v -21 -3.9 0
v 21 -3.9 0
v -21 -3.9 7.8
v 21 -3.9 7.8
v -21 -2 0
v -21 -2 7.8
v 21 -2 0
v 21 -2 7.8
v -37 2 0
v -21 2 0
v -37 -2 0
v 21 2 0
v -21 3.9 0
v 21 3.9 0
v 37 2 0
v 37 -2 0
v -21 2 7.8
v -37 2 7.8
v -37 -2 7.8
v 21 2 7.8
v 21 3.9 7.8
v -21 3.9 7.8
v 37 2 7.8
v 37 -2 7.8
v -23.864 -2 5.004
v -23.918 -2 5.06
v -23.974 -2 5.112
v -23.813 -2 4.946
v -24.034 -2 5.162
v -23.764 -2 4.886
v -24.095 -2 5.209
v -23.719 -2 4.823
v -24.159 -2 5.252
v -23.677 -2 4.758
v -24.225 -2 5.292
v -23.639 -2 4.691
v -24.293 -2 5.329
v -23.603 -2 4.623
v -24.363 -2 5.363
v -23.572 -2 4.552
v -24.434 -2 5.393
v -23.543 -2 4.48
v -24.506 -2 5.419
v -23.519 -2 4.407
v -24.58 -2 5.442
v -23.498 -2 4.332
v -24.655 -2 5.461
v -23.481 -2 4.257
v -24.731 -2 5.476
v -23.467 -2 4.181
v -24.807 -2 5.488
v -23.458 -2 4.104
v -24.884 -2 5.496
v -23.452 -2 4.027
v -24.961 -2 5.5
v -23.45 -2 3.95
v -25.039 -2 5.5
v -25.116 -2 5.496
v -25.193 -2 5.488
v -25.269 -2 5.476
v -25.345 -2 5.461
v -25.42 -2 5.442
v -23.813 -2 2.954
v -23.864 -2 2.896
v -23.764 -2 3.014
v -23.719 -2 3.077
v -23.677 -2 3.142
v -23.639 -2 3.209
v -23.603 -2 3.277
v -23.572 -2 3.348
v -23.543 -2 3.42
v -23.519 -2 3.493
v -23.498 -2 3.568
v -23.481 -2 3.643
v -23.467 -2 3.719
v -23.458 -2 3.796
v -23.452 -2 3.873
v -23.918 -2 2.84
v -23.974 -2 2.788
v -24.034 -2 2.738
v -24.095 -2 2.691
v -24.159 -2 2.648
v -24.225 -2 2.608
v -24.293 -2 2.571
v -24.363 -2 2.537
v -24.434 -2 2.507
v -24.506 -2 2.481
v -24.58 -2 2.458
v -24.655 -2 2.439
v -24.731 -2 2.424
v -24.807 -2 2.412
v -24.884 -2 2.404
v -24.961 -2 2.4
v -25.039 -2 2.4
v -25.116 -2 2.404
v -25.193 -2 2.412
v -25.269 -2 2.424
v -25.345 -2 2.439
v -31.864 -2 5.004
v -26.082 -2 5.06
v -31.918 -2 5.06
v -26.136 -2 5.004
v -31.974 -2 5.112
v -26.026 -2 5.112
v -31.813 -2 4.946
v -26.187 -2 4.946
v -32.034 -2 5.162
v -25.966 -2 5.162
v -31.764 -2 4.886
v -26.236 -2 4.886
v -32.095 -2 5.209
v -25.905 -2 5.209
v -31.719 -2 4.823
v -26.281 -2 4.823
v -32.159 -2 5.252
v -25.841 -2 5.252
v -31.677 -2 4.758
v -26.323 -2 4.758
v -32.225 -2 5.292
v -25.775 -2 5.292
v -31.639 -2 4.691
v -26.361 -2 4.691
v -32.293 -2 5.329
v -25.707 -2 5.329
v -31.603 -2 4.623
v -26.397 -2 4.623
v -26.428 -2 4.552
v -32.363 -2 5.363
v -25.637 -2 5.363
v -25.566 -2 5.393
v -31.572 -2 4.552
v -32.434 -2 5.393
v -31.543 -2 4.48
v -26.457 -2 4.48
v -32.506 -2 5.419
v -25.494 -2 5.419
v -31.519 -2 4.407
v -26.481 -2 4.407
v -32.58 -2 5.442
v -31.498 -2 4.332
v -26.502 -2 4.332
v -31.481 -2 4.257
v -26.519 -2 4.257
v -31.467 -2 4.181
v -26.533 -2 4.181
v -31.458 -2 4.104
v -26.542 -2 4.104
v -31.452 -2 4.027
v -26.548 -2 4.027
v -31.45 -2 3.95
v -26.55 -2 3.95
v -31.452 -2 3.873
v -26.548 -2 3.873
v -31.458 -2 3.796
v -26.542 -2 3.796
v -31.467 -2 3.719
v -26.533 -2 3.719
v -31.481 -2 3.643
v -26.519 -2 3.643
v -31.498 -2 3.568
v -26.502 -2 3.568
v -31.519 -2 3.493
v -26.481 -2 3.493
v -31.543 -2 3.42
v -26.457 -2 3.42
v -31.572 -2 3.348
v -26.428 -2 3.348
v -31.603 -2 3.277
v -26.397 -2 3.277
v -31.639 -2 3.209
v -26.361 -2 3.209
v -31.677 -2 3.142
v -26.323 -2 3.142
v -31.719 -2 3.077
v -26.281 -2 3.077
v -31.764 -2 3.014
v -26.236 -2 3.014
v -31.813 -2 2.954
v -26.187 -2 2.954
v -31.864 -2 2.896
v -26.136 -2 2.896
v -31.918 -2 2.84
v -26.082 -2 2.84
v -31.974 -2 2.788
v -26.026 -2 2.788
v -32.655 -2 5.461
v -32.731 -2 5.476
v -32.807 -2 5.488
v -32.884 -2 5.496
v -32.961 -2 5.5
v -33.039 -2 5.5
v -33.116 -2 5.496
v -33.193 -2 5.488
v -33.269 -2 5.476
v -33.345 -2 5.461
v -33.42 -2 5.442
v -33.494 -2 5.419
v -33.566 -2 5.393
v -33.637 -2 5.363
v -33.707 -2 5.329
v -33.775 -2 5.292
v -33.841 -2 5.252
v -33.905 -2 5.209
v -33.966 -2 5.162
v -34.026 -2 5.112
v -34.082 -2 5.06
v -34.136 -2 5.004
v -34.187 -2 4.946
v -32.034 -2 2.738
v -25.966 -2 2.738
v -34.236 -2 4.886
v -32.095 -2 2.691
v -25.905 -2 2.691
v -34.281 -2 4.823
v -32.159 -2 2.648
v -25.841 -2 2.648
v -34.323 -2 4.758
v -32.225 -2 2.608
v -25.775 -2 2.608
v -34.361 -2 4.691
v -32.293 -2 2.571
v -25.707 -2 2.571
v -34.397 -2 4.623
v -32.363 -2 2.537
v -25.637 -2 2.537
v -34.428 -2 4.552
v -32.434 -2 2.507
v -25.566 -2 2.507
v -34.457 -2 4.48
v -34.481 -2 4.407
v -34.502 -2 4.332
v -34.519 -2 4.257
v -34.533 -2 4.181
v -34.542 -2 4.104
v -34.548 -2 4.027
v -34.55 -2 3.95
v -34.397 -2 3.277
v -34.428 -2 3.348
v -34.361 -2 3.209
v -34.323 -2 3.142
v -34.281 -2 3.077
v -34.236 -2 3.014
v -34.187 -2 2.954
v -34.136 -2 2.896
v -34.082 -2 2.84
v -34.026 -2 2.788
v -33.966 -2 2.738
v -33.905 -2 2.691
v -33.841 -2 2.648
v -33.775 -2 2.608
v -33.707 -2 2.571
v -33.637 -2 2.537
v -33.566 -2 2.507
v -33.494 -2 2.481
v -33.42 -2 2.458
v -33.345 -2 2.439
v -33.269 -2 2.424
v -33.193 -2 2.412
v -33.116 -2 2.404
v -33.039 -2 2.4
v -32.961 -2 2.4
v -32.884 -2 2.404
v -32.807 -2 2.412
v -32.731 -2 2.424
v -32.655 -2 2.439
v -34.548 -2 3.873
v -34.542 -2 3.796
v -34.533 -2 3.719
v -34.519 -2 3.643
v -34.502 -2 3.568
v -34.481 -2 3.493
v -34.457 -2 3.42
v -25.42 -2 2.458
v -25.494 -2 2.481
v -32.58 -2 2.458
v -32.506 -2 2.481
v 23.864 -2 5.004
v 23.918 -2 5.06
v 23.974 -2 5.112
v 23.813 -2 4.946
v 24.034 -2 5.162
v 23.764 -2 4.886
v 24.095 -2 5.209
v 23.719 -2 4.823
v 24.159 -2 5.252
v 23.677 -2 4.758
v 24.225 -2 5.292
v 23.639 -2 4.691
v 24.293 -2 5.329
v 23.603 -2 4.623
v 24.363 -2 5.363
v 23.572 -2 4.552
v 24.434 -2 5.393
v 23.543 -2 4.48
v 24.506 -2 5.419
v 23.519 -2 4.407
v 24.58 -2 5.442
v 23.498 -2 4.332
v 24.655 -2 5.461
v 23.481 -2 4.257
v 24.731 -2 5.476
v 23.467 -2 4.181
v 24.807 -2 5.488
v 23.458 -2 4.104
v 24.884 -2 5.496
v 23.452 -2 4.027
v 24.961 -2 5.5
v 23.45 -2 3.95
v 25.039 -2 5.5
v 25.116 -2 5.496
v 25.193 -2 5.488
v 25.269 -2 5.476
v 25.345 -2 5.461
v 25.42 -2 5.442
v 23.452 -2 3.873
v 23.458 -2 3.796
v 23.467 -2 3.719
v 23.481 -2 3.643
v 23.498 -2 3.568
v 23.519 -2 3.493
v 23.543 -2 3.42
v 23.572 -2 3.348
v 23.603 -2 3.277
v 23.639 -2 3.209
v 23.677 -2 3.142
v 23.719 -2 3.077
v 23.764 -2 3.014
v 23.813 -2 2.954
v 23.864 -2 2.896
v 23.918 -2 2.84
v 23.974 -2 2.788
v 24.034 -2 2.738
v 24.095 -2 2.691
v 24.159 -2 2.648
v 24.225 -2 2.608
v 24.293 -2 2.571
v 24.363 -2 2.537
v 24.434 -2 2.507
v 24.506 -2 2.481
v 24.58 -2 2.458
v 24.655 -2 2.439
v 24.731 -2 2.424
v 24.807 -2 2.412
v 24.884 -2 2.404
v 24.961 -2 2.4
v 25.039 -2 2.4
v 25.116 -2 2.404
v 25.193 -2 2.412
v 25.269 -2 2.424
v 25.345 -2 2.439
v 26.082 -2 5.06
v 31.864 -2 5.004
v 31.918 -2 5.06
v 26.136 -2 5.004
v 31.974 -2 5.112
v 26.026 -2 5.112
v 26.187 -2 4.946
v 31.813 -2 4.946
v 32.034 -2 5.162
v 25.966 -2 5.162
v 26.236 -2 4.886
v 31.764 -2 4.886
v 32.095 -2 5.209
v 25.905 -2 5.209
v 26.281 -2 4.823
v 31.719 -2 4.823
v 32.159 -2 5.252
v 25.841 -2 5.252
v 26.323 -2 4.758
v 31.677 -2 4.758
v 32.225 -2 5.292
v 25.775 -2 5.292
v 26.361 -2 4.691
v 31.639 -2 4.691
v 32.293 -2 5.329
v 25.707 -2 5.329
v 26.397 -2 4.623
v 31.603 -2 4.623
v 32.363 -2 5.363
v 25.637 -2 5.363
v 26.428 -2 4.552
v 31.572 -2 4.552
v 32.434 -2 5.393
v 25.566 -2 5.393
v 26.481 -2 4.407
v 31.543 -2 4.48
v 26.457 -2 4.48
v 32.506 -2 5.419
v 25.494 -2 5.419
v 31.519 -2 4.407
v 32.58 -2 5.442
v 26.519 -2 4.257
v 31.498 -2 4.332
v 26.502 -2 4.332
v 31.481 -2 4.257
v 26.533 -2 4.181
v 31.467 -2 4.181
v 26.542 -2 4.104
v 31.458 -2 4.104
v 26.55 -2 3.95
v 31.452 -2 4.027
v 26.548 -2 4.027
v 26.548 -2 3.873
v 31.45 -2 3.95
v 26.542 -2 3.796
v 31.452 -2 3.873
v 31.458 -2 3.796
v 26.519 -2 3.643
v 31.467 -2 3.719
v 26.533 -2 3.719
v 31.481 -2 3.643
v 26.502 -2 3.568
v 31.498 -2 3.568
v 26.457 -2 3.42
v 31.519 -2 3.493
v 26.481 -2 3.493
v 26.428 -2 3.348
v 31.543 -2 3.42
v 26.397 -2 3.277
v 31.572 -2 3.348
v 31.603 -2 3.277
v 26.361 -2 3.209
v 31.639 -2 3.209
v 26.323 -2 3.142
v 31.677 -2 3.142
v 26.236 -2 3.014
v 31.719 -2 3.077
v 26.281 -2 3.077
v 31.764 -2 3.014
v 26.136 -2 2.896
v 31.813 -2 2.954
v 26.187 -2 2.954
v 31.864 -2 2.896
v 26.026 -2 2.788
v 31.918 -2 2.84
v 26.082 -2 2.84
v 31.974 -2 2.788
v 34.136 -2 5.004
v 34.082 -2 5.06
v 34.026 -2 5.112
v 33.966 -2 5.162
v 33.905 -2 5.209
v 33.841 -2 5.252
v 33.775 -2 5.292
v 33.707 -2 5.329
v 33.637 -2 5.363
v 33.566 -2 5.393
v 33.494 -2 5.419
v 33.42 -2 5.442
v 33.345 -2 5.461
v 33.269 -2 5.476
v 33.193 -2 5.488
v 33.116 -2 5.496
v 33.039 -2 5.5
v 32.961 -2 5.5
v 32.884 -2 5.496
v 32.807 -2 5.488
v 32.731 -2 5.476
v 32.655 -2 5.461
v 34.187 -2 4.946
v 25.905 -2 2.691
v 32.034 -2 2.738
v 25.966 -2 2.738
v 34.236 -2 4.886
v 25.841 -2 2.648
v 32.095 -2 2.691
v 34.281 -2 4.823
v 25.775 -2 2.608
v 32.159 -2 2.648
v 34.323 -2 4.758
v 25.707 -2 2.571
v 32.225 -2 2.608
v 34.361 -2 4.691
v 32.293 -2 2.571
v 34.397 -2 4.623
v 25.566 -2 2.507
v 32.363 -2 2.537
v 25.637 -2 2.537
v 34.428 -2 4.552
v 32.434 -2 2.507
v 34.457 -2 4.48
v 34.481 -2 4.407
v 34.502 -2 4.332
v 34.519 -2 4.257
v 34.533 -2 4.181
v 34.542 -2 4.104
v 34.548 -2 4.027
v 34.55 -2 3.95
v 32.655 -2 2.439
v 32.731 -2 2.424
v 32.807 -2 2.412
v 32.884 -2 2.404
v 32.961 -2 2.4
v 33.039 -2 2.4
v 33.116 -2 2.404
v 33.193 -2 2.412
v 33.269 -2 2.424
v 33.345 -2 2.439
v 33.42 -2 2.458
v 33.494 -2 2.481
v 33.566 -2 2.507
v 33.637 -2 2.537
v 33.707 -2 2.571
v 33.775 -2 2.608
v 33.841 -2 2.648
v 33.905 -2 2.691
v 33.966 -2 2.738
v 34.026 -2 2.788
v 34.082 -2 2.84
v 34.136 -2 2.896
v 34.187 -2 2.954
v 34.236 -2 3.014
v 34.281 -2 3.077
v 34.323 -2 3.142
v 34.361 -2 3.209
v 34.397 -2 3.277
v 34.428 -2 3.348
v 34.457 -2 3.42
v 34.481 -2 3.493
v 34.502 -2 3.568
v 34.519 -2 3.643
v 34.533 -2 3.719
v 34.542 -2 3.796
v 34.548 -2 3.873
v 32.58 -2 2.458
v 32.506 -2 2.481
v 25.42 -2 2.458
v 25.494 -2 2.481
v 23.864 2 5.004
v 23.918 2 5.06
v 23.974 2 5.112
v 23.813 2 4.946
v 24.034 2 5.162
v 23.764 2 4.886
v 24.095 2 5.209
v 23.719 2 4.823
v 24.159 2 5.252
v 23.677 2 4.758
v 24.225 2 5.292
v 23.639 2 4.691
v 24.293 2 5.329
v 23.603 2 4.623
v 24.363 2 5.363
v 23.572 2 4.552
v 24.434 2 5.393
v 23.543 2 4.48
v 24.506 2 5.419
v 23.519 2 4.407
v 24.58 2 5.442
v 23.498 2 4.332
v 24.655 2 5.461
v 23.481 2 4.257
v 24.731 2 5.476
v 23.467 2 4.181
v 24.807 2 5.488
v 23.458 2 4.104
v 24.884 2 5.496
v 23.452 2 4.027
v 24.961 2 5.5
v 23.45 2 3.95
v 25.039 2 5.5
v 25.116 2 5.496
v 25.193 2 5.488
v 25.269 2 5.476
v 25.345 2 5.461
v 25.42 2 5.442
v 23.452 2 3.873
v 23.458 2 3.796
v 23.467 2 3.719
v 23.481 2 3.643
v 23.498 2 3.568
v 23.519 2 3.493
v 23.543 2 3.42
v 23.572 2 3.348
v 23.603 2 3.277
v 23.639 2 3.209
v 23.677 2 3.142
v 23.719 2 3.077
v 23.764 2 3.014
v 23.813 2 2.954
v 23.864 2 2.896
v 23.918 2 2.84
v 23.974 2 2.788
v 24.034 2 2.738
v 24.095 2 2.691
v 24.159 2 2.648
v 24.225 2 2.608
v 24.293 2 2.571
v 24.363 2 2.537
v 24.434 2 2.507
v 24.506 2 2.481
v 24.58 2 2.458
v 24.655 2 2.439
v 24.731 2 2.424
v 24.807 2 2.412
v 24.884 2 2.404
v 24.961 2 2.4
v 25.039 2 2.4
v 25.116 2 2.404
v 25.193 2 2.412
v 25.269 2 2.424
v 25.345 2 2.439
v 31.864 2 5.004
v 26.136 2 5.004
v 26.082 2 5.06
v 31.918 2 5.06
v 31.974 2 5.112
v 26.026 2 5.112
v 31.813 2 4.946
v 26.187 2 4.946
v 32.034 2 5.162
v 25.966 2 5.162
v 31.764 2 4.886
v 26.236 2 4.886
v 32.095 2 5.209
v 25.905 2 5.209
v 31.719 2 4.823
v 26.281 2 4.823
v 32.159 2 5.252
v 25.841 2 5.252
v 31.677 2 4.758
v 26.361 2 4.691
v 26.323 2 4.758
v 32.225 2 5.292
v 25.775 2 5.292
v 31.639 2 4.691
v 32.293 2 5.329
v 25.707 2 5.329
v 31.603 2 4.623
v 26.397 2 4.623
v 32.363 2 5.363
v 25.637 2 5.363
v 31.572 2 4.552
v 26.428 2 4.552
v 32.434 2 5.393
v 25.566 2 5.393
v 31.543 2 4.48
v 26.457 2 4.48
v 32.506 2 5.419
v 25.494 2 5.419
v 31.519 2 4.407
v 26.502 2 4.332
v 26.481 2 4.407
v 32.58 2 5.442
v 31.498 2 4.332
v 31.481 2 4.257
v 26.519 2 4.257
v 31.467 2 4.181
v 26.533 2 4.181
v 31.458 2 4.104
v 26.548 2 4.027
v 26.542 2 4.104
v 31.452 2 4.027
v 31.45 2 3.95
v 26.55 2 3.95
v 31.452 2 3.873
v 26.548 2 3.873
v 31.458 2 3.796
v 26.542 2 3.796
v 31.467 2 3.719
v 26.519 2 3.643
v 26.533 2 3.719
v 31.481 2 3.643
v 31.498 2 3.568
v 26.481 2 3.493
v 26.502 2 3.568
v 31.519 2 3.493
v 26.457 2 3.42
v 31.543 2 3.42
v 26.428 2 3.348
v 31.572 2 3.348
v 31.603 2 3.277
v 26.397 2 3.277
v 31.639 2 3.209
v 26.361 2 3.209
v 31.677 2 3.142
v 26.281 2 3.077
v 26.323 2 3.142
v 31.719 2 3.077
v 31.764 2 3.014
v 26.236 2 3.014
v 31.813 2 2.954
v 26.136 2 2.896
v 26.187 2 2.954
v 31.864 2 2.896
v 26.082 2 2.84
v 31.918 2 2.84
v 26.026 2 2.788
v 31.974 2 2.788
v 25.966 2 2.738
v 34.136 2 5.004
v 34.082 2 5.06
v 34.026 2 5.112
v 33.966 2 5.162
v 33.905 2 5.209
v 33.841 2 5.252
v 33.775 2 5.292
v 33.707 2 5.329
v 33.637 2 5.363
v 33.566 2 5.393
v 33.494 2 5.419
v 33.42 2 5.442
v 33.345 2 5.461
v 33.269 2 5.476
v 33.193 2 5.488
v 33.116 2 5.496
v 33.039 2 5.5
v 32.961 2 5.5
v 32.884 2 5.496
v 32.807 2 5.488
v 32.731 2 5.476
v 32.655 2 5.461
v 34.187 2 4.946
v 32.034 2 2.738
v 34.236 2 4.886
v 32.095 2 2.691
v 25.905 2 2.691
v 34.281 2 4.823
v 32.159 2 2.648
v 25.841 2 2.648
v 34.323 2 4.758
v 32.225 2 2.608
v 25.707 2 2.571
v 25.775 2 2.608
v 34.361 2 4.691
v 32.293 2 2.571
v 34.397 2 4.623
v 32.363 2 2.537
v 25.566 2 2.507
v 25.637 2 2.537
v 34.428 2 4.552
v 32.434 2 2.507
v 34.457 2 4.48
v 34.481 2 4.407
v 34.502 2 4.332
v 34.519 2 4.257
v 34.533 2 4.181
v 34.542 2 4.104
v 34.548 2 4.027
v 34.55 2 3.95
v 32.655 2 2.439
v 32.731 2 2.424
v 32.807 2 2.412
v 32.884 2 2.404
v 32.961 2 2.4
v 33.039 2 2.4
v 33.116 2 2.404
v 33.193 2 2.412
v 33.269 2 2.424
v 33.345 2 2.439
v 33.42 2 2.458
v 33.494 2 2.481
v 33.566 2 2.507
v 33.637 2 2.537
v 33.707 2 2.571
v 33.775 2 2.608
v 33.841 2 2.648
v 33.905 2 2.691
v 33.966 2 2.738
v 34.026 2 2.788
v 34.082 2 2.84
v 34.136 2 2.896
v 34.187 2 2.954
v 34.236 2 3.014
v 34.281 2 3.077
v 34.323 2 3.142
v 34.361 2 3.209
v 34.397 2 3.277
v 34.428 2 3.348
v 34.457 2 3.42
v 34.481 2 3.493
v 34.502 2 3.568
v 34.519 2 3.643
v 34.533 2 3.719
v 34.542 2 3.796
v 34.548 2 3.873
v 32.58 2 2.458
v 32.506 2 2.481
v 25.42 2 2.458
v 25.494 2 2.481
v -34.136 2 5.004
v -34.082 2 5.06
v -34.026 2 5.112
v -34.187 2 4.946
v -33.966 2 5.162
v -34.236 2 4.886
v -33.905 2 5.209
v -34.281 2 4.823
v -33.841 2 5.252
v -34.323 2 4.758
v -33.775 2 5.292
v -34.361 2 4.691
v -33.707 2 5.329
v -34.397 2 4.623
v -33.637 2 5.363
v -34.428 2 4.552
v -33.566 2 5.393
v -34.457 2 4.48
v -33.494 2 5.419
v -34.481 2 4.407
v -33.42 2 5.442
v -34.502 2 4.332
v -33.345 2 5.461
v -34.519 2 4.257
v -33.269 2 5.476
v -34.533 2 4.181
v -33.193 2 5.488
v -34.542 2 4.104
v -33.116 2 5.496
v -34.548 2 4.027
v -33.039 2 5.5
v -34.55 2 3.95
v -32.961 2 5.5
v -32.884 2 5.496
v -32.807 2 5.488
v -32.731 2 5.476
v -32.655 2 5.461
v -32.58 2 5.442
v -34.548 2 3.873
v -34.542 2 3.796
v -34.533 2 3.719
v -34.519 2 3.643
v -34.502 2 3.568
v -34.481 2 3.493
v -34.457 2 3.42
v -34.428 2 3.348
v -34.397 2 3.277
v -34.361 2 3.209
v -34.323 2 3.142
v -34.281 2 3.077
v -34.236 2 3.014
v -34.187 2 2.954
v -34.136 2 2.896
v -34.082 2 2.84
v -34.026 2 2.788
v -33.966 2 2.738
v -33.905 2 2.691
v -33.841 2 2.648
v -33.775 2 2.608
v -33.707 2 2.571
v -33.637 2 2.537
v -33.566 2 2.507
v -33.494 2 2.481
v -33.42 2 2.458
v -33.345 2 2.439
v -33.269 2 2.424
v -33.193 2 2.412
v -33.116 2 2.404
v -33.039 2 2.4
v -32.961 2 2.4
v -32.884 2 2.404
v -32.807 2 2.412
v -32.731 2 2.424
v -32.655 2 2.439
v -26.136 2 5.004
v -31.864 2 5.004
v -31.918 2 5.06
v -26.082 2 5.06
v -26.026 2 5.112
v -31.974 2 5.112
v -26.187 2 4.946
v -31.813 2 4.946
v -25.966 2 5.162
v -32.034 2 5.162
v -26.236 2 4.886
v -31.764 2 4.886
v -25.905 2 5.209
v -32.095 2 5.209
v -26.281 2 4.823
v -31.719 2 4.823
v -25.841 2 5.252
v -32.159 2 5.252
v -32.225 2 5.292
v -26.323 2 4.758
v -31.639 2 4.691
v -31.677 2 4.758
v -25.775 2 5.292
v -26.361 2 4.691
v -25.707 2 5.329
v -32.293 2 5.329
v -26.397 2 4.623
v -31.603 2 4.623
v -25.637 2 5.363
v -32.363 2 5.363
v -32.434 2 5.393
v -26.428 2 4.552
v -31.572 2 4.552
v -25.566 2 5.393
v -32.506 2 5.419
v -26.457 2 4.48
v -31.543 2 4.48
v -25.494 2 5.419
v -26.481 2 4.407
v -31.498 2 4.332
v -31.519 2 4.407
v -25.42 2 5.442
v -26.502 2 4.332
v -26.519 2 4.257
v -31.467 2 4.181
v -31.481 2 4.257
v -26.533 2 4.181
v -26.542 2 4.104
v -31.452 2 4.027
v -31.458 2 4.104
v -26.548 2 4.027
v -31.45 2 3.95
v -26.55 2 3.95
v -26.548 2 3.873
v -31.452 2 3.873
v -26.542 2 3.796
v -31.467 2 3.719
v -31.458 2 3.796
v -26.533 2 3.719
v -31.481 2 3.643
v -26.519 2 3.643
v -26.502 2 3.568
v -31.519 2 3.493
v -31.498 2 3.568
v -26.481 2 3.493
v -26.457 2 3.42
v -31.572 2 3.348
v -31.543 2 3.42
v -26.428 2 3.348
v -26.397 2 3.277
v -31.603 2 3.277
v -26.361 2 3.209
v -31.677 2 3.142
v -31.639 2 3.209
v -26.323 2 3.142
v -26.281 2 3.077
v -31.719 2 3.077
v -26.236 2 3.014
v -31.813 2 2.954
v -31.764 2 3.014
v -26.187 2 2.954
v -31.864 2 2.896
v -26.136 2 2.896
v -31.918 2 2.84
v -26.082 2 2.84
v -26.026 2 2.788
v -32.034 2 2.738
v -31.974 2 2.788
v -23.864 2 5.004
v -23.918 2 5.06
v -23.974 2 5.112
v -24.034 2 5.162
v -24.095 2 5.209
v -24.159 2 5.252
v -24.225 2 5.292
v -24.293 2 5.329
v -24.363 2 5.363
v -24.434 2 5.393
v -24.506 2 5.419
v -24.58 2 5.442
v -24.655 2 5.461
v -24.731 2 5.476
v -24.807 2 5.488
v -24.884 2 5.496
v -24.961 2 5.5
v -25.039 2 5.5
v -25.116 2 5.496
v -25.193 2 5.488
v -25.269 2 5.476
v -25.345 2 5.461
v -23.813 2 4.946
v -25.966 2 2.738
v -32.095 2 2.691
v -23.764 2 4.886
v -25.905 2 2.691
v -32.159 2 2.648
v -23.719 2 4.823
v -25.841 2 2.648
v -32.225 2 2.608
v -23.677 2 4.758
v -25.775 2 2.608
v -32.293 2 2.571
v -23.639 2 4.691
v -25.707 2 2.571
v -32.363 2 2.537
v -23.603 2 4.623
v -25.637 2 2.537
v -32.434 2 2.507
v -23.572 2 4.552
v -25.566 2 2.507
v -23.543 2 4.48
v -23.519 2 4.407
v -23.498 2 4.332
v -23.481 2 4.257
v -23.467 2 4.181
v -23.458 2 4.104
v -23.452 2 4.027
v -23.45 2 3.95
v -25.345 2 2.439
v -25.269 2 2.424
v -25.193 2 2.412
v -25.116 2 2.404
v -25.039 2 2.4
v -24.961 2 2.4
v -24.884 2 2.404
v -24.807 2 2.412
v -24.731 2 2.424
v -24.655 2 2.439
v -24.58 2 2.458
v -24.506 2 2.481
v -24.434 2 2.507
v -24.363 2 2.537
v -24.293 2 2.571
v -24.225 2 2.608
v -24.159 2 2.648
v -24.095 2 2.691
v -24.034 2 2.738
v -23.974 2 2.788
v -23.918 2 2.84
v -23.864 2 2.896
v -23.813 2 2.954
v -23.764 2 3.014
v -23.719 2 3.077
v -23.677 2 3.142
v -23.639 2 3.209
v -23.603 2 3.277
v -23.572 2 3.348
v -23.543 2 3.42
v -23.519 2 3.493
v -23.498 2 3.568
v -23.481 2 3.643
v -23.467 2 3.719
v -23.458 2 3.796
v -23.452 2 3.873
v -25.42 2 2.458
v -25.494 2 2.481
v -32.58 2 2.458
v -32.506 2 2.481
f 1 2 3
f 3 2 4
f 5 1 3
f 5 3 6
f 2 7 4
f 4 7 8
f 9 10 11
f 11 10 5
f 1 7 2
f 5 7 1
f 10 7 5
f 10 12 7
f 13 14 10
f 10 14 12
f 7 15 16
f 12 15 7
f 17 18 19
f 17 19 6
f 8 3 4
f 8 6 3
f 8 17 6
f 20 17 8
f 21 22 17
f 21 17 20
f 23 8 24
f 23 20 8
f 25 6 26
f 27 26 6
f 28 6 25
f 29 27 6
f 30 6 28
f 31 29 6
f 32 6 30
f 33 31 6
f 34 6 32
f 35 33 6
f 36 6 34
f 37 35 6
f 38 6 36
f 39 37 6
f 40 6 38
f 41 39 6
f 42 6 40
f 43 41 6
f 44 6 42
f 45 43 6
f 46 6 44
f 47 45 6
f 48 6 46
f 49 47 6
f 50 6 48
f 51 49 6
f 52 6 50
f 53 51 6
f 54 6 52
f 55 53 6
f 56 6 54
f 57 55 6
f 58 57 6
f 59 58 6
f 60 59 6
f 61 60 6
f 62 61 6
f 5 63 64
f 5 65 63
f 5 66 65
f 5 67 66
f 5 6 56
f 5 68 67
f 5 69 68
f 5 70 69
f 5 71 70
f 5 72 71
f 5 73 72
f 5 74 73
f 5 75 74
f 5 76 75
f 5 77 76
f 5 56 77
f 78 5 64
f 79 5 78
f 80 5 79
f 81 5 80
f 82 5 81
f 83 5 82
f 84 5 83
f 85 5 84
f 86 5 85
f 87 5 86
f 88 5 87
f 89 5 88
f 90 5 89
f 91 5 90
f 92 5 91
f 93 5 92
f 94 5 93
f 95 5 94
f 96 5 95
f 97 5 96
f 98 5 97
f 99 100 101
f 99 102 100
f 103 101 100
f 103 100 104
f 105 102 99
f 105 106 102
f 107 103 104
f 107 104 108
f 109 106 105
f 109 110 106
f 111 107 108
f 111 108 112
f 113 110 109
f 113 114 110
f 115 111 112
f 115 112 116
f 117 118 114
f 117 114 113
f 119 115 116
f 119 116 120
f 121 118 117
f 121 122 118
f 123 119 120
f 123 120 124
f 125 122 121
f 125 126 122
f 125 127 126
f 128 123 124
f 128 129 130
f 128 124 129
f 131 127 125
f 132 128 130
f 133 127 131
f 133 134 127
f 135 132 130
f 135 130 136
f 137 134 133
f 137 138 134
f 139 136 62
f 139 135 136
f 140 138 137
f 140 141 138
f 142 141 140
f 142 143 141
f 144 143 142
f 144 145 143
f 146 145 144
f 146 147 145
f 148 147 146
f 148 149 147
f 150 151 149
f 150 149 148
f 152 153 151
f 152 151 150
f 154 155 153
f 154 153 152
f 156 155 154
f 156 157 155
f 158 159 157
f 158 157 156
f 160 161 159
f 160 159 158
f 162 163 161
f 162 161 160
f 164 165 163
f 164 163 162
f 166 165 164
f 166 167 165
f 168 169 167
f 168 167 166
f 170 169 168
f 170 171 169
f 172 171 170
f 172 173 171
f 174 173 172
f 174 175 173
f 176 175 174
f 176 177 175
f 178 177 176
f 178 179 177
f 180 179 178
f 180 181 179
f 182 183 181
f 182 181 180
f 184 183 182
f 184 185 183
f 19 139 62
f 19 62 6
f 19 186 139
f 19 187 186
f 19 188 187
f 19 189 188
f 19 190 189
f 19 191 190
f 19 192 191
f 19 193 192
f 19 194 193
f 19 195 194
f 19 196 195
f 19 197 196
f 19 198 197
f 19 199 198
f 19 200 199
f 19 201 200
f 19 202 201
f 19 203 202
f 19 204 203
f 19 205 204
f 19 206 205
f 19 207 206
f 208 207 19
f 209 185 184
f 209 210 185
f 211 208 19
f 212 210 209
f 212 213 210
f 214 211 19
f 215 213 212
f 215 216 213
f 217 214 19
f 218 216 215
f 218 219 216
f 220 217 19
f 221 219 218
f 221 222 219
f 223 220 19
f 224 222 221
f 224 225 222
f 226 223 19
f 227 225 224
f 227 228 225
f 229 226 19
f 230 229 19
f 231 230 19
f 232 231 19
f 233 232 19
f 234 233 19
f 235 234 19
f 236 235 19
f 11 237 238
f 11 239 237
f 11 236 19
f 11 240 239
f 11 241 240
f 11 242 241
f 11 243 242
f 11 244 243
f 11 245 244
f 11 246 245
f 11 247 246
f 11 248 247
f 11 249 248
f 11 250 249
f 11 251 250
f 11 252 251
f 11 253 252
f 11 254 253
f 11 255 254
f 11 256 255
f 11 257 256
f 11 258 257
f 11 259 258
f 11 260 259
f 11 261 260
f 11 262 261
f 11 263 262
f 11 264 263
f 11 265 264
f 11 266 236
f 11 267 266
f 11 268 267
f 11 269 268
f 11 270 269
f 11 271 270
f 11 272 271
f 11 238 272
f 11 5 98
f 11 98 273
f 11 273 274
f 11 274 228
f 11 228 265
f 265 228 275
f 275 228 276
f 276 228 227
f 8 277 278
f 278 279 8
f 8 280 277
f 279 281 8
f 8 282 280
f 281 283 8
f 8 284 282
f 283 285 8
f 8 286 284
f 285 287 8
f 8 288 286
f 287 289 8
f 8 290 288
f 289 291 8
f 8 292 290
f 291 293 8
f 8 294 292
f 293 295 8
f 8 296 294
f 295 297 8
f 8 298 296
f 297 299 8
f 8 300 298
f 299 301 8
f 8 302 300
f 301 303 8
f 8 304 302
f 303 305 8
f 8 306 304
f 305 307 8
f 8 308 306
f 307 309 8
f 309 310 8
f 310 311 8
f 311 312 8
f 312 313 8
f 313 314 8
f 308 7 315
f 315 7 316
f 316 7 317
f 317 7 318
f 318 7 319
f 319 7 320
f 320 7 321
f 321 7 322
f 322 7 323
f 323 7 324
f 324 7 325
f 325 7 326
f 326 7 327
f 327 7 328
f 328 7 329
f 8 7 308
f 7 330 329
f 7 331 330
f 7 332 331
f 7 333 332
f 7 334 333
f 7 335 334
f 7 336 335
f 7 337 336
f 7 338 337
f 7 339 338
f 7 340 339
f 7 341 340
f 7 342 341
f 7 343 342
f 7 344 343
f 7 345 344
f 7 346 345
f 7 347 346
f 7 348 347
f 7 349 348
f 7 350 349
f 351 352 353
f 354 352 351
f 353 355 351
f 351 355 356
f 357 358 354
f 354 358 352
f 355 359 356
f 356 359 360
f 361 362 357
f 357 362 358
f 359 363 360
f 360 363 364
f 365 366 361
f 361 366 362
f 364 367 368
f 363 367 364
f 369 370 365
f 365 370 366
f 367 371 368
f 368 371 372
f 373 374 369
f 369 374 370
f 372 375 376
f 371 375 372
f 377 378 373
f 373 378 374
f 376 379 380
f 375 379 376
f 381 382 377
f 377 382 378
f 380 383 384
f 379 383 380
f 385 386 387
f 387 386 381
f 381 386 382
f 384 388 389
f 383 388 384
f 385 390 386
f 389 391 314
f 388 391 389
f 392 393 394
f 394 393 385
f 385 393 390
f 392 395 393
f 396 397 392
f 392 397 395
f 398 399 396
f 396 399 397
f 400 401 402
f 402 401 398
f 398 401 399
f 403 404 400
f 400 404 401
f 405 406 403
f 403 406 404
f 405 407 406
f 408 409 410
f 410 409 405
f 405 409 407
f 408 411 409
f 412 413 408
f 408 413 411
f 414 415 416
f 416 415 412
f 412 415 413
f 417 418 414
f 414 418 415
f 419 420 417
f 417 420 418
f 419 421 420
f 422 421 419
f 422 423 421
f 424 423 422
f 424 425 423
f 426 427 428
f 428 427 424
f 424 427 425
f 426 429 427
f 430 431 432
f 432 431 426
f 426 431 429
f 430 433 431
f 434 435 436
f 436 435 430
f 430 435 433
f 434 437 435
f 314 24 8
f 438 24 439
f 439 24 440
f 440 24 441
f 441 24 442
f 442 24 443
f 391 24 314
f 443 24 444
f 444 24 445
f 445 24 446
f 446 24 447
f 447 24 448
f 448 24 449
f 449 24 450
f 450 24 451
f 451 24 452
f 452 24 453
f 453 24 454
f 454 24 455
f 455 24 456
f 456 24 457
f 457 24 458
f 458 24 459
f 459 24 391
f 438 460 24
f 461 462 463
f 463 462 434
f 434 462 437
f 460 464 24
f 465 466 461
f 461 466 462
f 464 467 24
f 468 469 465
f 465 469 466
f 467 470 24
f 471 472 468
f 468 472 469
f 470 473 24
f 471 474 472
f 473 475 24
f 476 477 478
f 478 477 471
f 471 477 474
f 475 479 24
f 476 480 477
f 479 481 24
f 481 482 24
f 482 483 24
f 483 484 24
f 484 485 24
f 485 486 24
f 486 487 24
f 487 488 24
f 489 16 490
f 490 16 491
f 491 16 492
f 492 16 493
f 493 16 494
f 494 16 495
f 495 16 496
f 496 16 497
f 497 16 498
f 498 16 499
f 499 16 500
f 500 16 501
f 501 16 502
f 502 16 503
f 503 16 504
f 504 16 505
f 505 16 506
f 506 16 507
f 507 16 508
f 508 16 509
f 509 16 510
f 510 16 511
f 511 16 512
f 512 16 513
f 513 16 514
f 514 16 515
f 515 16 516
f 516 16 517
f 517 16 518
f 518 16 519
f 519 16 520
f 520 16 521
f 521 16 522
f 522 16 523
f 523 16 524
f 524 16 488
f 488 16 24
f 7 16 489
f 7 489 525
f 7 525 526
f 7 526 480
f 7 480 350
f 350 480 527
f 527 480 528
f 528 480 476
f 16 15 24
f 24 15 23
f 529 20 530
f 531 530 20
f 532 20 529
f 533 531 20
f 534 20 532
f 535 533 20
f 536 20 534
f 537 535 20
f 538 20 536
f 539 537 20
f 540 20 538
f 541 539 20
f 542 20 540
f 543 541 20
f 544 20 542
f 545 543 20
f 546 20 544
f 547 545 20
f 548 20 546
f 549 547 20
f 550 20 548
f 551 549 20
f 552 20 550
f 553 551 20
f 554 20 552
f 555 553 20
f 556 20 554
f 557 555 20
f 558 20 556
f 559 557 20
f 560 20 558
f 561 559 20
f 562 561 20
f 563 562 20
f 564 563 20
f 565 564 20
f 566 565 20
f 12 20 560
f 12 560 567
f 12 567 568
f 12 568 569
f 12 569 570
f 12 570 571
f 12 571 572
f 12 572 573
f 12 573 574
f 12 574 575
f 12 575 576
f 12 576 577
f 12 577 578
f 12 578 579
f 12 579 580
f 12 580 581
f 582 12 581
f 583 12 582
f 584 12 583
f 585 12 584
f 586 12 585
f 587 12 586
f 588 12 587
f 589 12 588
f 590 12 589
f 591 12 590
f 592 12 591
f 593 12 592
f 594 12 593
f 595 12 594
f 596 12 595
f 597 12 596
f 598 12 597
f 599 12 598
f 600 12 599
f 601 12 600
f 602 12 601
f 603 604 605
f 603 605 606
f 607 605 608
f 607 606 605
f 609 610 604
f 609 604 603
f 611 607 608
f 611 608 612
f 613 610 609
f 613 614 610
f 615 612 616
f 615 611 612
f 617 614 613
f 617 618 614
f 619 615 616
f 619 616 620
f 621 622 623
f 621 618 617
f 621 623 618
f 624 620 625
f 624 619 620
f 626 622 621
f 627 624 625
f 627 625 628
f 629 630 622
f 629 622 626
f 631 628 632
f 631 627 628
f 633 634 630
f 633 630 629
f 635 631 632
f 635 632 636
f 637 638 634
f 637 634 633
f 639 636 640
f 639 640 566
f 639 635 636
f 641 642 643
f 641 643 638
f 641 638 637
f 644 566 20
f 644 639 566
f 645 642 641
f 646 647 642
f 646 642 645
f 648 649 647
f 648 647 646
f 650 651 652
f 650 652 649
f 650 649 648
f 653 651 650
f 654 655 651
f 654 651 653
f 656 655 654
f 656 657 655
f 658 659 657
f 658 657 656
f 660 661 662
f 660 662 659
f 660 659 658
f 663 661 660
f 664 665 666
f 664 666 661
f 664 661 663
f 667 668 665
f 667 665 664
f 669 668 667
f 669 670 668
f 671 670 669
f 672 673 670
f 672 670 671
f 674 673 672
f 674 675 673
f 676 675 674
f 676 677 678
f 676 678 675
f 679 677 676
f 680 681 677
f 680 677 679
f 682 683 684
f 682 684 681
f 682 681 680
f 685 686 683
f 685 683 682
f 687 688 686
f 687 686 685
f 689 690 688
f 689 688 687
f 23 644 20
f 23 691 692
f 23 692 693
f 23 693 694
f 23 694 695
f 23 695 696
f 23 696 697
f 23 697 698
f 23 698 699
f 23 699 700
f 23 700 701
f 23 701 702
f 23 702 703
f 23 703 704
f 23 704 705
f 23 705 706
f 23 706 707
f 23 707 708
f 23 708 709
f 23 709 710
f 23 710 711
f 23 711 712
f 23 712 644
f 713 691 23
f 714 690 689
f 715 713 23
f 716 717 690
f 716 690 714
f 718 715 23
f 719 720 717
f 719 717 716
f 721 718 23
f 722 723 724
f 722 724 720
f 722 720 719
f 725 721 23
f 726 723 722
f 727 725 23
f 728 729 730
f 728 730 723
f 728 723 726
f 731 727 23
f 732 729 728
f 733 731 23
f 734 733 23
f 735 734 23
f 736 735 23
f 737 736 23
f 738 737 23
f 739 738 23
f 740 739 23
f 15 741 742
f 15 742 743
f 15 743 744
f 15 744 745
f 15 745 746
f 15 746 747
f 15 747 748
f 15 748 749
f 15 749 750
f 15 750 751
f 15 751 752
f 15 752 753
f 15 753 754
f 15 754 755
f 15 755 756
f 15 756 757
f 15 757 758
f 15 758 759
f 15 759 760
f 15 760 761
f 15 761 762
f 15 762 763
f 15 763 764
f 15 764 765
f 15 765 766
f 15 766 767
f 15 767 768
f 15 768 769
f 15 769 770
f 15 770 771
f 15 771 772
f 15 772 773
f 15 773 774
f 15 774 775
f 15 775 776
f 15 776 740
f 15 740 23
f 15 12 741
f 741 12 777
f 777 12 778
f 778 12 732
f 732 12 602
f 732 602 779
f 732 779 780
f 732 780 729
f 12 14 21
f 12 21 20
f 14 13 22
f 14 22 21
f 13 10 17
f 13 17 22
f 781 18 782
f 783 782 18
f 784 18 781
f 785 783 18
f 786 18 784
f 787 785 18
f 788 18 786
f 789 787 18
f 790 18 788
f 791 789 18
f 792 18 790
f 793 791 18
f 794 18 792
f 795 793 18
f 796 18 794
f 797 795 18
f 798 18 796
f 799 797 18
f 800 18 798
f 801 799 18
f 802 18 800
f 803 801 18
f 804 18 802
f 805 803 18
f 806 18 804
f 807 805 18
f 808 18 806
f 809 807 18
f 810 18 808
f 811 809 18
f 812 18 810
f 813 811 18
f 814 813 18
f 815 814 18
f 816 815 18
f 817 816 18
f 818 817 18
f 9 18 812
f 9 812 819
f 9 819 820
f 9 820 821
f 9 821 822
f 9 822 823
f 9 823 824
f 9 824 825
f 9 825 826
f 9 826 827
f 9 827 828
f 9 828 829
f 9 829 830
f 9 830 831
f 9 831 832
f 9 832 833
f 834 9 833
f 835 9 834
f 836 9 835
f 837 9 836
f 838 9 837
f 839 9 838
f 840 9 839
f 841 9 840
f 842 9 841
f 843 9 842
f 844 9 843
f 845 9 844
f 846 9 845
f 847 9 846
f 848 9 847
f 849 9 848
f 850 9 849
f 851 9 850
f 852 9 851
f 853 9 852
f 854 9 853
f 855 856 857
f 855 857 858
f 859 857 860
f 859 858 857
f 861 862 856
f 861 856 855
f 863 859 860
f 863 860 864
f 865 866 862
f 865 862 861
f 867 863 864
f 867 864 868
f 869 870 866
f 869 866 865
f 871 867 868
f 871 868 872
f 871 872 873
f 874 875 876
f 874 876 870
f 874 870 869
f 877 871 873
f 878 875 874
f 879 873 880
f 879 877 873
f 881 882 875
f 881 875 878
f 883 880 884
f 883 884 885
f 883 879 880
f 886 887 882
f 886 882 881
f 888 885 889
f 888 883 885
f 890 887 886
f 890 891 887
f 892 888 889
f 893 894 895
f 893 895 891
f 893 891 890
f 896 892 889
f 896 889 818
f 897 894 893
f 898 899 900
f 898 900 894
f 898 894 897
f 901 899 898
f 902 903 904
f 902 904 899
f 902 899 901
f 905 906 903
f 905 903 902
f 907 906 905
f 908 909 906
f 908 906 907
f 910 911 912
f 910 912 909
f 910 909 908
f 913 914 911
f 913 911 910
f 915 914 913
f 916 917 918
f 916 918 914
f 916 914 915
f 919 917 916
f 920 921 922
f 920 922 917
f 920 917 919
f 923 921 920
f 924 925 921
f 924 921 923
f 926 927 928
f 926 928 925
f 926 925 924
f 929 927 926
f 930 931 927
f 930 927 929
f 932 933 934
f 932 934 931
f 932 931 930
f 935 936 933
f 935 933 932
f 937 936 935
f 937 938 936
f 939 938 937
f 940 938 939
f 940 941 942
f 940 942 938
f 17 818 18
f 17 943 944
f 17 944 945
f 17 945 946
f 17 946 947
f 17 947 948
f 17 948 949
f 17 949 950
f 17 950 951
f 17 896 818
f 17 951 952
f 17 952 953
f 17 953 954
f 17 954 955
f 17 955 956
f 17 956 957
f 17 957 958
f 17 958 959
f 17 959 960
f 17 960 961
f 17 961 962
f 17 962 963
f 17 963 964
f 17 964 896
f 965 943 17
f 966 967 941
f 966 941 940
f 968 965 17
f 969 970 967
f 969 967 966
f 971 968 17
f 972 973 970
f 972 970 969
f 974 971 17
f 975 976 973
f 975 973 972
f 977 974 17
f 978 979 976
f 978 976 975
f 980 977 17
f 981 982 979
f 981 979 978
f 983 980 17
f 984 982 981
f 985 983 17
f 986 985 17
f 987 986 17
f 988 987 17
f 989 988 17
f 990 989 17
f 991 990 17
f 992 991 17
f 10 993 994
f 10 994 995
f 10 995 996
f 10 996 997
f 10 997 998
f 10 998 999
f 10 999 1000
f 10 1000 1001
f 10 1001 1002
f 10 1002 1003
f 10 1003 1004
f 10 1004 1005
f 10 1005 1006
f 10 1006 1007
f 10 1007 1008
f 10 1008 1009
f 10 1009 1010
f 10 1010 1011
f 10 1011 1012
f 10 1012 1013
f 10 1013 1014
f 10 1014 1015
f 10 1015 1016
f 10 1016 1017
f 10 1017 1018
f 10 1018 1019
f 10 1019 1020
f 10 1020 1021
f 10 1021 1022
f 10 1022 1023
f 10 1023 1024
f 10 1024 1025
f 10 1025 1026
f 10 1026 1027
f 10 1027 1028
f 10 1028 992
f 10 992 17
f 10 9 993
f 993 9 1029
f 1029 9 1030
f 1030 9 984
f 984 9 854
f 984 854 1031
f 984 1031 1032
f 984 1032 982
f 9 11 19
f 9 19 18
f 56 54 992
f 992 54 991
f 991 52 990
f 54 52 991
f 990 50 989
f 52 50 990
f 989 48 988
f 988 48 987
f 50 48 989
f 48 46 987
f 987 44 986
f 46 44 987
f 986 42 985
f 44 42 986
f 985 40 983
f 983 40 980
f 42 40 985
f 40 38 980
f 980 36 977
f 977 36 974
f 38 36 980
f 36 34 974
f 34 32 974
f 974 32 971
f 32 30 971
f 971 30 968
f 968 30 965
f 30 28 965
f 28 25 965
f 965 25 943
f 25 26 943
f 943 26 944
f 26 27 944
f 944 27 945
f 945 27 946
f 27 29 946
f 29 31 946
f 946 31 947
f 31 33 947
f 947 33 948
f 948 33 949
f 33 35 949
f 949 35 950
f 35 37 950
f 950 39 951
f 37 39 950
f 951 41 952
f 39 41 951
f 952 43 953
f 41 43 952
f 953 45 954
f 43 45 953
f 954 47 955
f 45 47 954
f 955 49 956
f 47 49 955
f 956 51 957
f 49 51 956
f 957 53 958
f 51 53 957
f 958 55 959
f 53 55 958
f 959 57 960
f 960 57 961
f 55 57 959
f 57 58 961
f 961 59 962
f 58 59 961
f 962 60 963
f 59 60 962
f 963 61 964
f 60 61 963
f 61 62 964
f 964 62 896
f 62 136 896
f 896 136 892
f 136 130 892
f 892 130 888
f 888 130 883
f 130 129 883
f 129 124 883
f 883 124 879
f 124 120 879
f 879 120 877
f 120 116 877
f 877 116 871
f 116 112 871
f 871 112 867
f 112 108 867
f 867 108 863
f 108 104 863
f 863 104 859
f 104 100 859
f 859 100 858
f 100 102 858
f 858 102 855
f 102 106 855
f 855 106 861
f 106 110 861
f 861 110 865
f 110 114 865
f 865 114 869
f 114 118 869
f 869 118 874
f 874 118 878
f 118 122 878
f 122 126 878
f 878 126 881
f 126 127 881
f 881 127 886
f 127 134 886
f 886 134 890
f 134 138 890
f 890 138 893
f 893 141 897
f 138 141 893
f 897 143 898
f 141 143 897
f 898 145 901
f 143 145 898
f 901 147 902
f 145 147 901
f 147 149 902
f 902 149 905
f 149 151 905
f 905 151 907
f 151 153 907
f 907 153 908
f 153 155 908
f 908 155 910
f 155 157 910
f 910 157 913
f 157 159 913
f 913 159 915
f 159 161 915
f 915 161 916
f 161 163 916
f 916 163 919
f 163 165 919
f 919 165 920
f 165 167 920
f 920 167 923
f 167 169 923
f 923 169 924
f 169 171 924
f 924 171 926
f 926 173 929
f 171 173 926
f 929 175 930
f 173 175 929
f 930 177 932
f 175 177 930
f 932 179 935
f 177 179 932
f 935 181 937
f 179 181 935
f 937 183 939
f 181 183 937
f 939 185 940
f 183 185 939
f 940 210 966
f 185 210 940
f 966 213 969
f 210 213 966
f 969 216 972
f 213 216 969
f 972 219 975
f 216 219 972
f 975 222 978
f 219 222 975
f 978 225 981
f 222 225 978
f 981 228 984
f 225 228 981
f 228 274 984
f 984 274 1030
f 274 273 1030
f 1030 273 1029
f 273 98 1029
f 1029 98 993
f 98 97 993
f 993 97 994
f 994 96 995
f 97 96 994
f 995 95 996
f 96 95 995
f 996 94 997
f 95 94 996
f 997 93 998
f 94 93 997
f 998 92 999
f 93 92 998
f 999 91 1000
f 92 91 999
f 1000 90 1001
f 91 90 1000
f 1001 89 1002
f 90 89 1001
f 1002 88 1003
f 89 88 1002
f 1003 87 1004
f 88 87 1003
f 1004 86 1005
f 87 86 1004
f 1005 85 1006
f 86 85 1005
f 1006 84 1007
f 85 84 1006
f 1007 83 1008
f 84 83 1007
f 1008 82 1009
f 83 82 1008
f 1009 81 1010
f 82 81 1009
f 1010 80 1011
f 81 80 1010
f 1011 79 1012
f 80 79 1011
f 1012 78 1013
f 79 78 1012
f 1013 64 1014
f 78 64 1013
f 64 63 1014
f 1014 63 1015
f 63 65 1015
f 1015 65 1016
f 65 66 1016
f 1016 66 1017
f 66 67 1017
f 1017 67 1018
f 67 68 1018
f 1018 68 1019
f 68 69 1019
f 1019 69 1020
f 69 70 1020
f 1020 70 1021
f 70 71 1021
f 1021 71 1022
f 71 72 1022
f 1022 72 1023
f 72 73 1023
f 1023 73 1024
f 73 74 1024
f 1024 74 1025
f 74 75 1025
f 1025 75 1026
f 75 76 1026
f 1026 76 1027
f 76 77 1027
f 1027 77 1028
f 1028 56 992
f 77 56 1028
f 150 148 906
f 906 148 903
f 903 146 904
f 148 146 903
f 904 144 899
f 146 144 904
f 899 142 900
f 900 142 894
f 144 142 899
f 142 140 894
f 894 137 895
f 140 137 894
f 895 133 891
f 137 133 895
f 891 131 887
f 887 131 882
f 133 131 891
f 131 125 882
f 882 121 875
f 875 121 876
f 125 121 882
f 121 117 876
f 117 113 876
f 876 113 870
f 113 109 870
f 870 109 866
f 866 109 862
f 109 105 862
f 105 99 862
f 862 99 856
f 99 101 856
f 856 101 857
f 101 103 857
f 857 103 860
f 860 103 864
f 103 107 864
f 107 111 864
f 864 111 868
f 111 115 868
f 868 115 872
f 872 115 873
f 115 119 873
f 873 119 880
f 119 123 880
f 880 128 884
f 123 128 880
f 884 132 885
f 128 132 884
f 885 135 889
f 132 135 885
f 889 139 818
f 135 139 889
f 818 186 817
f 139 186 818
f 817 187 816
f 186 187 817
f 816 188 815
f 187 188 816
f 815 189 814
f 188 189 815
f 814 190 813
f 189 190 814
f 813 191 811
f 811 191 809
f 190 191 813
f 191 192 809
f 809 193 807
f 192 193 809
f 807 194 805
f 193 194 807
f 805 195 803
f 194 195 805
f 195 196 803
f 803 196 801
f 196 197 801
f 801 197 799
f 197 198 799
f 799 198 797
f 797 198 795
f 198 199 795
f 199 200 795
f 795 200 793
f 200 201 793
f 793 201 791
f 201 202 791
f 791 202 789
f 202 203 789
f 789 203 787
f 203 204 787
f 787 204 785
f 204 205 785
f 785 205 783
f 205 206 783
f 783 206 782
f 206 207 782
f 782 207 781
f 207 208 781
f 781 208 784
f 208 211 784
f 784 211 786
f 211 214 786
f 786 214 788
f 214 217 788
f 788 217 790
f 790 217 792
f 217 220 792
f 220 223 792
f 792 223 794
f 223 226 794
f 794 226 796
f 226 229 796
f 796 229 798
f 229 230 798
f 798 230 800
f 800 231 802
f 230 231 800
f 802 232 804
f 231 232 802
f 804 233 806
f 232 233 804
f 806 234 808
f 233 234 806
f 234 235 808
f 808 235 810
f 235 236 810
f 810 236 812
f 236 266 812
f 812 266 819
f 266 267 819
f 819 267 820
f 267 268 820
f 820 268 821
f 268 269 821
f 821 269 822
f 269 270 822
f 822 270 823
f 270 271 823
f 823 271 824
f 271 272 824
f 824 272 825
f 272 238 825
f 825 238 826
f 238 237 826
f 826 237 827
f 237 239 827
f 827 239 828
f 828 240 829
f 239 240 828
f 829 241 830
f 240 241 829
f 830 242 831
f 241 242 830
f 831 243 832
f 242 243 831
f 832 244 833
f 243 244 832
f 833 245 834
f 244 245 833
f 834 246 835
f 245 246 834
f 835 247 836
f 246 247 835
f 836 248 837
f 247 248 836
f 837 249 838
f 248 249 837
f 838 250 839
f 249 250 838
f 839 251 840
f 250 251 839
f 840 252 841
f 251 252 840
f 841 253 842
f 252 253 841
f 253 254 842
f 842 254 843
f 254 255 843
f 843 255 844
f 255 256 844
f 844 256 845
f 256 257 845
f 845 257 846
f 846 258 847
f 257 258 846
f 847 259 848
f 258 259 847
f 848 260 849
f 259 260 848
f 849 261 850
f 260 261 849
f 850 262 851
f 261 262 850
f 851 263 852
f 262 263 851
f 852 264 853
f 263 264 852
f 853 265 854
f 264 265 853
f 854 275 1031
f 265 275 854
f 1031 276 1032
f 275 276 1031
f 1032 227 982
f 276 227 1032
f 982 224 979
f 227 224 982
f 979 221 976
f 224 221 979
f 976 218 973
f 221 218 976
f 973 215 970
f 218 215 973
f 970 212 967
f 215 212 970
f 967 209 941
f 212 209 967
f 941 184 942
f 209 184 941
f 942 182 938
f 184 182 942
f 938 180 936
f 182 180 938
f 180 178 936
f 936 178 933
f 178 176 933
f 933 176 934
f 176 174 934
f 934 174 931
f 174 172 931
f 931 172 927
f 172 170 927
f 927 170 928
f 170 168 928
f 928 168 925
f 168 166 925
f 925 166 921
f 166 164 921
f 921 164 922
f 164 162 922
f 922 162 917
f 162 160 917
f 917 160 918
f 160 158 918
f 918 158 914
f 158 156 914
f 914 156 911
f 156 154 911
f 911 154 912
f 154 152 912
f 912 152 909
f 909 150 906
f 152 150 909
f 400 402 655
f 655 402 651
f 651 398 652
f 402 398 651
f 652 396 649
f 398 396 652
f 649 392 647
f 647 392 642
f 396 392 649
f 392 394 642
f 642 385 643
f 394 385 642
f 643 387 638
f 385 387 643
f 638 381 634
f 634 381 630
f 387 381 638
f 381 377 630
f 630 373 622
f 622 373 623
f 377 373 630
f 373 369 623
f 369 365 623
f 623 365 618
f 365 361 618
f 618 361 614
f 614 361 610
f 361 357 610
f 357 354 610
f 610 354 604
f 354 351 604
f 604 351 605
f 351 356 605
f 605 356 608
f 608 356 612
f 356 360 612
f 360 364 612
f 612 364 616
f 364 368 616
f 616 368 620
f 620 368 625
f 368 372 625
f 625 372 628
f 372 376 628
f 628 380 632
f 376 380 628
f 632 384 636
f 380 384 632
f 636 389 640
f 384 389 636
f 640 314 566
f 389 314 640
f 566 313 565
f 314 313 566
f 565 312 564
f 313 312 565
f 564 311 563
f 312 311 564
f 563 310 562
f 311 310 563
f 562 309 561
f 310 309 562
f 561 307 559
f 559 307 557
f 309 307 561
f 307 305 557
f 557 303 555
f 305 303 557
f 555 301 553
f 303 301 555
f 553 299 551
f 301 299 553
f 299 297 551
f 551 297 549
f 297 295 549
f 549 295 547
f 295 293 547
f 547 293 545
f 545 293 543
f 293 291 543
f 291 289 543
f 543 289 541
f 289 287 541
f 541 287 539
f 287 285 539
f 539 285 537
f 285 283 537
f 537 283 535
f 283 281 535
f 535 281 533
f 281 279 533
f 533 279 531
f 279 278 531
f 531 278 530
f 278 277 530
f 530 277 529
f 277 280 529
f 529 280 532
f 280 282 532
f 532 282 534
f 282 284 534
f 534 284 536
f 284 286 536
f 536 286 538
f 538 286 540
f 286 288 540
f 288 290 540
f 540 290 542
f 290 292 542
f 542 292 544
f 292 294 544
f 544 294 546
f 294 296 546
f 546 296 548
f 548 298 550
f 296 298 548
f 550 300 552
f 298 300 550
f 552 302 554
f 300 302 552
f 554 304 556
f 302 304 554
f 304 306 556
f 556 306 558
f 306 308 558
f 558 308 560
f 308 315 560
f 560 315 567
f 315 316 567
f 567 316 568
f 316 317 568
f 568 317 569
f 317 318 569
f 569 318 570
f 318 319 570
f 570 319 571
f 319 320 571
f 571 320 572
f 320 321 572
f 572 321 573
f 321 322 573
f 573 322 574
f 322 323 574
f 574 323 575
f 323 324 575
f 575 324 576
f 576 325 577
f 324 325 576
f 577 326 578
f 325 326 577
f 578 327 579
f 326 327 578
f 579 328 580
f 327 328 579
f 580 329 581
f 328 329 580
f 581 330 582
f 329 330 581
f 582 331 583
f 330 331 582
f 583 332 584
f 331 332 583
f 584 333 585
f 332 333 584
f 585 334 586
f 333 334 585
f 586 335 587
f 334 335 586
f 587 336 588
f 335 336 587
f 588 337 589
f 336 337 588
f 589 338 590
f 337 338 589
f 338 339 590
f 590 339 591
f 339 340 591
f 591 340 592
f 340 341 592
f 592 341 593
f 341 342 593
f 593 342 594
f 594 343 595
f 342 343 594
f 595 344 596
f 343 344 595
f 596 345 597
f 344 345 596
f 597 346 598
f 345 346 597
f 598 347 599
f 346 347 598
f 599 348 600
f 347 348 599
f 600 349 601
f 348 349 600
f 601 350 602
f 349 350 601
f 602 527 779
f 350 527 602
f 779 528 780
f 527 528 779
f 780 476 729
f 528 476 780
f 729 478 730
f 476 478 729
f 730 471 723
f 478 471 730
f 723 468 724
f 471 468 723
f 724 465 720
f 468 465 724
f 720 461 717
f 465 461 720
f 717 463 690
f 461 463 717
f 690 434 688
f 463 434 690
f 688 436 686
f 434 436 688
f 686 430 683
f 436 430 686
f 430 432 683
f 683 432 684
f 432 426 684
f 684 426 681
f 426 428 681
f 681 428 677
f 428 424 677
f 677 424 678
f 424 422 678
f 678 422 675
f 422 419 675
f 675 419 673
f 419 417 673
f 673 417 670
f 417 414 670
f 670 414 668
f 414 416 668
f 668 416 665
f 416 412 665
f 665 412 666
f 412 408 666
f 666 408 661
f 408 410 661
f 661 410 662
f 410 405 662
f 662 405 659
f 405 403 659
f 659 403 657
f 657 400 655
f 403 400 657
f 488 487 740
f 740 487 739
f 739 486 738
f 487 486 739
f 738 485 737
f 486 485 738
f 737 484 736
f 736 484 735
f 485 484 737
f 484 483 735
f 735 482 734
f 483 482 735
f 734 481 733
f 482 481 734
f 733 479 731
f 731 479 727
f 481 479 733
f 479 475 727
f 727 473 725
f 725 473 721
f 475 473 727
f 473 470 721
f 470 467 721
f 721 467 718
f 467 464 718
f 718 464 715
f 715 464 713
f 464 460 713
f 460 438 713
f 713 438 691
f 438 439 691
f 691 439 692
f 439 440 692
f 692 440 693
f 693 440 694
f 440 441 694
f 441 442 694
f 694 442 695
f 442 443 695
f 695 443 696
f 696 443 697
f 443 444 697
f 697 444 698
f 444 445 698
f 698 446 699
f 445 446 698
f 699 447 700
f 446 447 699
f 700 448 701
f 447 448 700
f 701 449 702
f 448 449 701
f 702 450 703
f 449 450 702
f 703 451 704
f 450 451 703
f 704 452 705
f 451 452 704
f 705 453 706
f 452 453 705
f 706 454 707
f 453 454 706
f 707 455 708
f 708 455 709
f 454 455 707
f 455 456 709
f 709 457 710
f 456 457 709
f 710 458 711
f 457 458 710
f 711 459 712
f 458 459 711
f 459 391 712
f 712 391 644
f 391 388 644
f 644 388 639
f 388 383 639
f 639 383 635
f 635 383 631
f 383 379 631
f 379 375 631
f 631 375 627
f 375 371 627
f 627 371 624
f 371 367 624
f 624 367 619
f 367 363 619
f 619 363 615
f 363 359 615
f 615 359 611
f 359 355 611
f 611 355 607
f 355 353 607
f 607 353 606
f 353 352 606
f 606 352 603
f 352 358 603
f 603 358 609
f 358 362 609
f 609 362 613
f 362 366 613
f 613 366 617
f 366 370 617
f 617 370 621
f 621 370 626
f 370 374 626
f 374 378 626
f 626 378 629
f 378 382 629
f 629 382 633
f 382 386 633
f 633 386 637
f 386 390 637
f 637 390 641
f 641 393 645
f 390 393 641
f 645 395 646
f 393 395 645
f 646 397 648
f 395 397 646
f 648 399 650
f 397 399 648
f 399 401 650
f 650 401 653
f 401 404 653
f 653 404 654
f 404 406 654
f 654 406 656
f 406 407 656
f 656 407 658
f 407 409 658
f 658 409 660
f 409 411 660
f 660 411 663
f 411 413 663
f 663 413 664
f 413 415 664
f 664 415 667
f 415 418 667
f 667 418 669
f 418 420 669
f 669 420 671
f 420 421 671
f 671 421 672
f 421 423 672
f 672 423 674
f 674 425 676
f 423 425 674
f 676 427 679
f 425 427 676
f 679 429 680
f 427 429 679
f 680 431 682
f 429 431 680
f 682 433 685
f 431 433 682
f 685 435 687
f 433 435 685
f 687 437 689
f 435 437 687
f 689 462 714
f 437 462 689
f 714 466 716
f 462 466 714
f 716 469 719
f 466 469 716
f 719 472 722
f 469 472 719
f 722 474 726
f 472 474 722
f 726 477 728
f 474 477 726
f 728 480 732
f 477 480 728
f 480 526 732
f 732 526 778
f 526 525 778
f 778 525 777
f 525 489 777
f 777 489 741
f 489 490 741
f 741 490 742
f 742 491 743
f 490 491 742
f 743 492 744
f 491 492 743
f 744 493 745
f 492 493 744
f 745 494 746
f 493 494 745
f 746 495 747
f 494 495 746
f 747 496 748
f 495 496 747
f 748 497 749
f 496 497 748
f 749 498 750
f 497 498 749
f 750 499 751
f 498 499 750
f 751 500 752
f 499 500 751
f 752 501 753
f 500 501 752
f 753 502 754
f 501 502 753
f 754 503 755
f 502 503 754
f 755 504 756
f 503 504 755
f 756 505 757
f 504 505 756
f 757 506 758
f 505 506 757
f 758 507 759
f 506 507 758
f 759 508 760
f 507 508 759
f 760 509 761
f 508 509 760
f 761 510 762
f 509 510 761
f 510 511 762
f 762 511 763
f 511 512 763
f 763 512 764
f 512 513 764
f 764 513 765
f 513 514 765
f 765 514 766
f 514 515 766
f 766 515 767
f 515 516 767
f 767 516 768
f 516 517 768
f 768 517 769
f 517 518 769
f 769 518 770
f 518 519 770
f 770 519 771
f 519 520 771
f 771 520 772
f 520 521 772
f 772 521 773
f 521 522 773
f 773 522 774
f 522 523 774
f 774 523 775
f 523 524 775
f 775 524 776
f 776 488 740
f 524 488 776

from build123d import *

# Parameters (mm, degrees)
PAD_DEPTH       = 7.8
SKETCH001_R     = 1.55
POCKET_DEPTH    = 5.901
POCKET001_DEPTH = 5.901


with BuildPart() as part:
    # Sketch → Pad (new body)
    with BuildSketch(Plane.XY):
        Polygon((37, -2), (37, 2), (21, 2), (21, 3.9), (-21, 3.9), (-21, 2), (-37, 2), (-37, -2), (-21, -2), (-21, -3.9), (21, -3.9), (21, -2), align=None)
    extrude(amount=PAD_DEPTH)

    # Sketch001 (on Face3 of Pad) → Pocket (cut, through all)
    with BuildSketch(Plane.XZ.offset(2)):
        with Locations((-33, 3.95)):
            Circle(SKETCH001_R)
        with Locations((-25, 3.95)):
            Circle(SKETCH001_R)
        with Locations((25, 3.95)):
            Circle(SKETCH001_R)
        with Locations((33, 3.95)):
            Circle(SKETCH001_R)
    extrude(amount=-POCKET_DEPTH, mode=Mode.SUBTRACT)

    # Sketch001 (on Face3 of Pad) → Pocket001 (cut, through all)
    with BuildSketch(Plane.XZ.offset(2)):
        with Locations((-33, 3.95)):
            Circle(SKETCH001_R)
        with Locations((-25, 3.95)):
            Circle(SKETCH001_R)
        with Locations((25, 3.95)):
            Circle(SKETCH001_R)
        with Locations((33, 3.95)):
            Circle(SKETCH001_R)
    extrude(amount=-POCKET001_DEPTH, mode=Mode.SUBTRACT)


solid = part.part
